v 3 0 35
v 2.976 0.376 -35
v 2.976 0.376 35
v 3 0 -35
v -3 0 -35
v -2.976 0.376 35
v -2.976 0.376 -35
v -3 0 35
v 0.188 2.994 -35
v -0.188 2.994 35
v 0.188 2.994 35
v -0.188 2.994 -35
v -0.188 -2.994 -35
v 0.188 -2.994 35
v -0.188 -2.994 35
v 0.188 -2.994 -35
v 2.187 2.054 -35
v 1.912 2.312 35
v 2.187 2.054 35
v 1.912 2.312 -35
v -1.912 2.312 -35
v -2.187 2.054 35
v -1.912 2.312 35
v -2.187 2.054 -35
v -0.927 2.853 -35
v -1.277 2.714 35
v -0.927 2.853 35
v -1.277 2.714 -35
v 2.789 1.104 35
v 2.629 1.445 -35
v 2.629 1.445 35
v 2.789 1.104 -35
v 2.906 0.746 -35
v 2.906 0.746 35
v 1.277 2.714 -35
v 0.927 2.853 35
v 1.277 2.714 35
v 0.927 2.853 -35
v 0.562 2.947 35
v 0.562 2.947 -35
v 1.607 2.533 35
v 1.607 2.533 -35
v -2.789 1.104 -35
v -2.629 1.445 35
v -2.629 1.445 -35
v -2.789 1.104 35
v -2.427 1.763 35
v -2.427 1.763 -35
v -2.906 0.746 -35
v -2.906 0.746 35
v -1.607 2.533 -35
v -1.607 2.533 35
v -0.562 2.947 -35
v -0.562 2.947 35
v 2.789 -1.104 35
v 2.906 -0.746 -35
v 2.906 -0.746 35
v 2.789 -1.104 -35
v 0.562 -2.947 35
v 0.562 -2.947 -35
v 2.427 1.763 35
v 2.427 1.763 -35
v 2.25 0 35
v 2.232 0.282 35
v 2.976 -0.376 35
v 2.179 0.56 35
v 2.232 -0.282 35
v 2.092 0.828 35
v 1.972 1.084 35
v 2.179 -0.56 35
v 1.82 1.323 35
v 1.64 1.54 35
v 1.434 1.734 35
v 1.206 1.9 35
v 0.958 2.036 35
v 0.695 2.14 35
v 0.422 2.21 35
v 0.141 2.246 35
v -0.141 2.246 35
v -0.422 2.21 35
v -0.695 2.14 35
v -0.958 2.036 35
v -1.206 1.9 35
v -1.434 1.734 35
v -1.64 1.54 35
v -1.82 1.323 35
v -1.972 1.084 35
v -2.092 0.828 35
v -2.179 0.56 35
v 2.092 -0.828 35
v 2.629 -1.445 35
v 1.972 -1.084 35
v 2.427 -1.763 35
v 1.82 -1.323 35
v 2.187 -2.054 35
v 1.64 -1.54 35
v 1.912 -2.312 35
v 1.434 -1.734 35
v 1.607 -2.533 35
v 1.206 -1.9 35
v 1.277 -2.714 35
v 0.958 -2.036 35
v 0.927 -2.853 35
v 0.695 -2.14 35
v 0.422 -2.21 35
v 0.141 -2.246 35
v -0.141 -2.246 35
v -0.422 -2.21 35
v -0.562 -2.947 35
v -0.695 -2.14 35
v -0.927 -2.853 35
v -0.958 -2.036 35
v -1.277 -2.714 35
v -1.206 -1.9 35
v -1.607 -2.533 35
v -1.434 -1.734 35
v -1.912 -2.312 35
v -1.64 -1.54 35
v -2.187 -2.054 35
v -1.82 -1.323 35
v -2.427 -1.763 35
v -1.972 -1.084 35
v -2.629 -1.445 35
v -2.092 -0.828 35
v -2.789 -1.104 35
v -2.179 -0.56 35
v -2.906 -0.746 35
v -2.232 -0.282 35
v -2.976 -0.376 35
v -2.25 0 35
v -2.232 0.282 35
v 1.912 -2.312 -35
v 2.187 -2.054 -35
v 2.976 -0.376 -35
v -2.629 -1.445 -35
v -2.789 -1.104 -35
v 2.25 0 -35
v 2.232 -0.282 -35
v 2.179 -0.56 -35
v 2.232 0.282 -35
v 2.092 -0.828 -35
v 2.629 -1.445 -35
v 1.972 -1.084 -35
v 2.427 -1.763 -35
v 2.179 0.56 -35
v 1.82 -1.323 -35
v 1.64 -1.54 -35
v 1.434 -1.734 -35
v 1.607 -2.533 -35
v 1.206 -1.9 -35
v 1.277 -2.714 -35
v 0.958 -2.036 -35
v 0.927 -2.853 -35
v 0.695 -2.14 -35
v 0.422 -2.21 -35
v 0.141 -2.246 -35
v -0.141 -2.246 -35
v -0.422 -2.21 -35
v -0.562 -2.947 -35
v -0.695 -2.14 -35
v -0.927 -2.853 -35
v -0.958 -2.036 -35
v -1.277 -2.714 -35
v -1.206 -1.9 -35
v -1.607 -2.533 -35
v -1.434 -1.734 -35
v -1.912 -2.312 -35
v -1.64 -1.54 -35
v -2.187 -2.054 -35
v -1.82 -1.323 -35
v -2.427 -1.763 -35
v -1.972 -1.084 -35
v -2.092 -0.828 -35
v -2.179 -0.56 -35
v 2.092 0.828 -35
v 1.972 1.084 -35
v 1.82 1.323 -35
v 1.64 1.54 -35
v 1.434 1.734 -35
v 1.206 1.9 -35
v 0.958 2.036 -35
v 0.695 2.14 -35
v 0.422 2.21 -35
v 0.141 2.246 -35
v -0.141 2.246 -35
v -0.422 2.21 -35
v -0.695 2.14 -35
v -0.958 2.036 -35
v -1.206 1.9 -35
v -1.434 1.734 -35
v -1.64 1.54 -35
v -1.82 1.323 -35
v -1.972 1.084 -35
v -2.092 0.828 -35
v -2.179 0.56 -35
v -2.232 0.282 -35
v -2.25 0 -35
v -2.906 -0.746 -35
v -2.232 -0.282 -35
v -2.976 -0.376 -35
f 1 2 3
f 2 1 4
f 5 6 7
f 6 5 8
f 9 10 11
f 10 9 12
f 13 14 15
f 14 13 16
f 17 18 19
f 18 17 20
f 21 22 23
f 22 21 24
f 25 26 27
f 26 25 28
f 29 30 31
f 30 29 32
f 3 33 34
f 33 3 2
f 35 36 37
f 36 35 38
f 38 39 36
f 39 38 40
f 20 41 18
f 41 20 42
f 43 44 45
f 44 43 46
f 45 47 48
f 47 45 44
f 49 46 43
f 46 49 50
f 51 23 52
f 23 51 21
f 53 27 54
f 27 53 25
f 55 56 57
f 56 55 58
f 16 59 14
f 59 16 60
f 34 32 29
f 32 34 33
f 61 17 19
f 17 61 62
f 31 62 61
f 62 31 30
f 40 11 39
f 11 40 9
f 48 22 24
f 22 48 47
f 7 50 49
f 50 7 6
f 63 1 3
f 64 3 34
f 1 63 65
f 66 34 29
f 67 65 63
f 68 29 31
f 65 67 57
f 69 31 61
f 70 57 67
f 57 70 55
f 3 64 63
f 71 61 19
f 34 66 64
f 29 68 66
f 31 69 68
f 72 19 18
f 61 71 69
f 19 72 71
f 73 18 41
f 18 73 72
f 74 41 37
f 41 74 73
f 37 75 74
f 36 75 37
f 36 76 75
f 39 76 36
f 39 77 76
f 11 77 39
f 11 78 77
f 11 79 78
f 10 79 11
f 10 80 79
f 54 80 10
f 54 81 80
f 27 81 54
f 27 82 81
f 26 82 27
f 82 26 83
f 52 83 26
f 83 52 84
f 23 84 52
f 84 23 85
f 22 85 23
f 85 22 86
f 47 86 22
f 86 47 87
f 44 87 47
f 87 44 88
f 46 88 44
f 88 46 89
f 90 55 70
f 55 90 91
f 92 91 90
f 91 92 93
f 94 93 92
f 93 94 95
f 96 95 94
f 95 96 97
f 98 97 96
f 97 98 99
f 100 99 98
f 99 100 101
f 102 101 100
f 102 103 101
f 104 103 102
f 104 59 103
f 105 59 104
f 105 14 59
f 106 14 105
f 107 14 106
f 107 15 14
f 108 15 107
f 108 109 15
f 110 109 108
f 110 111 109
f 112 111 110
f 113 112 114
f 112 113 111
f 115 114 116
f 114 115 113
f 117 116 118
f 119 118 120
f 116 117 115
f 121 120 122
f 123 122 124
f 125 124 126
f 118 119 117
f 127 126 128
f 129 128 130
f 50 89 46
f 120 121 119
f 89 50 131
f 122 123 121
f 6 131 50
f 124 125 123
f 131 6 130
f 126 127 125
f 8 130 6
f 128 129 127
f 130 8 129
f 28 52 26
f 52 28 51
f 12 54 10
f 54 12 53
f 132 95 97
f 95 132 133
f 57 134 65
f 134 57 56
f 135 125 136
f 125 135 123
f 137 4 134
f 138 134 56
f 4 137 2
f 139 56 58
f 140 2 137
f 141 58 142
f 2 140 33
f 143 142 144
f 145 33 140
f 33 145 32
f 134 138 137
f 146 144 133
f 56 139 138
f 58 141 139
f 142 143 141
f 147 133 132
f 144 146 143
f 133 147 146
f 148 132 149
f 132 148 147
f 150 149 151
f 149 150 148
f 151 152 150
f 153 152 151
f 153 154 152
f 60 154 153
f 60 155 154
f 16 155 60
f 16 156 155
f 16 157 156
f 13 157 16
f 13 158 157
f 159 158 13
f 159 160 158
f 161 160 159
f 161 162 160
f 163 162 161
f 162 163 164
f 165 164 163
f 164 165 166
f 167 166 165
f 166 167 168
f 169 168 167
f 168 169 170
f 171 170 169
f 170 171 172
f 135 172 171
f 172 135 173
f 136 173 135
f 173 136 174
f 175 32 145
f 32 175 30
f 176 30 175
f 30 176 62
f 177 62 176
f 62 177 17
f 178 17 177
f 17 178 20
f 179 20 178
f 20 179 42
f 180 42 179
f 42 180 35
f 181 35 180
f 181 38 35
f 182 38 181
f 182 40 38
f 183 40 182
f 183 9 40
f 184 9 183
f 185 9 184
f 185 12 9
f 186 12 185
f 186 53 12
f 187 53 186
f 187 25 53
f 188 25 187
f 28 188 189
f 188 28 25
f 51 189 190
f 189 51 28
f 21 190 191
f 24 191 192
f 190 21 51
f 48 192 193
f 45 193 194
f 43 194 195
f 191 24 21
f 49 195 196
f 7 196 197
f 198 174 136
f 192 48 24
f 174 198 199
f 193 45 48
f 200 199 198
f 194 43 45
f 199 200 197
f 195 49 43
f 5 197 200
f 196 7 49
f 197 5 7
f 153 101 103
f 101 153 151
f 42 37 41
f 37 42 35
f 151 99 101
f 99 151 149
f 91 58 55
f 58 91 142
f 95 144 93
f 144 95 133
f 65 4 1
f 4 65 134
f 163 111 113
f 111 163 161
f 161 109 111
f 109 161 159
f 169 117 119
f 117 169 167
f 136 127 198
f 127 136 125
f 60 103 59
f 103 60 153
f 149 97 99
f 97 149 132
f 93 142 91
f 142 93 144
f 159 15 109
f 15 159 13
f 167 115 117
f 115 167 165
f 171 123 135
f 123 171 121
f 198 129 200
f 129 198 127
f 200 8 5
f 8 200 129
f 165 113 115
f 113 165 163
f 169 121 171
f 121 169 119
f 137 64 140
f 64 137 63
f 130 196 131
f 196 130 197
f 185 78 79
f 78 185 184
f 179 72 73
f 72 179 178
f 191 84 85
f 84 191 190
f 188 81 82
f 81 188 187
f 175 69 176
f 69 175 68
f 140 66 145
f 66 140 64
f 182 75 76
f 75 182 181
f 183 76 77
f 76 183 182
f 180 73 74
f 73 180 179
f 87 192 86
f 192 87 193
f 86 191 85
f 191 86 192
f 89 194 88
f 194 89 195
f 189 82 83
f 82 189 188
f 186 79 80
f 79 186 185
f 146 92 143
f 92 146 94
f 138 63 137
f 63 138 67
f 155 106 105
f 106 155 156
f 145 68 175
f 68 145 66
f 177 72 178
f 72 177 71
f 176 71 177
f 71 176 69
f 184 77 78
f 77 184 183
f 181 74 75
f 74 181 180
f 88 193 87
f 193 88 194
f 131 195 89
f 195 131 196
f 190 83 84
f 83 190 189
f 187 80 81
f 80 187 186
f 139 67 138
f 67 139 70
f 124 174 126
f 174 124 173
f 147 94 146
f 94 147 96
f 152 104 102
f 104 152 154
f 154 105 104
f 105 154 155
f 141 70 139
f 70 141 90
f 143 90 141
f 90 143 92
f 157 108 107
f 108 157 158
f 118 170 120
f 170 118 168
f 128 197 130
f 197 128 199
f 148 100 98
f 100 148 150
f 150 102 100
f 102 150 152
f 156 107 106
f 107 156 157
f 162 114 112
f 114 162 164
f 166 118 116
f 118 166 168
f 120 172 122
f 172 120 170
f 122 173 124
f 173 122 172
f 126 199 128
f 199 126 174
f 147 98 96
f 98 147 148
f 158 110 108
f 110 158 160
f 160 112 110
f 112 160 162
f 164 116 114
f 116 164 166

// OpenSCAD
$fn = 50;


difference() {
	union() {
		translate(v = [0, 0, -35.0000000000]) {
			cylinder(h = 70, r = 3.0000000000);
		}
	}
	union() {
		translate(v = [0, 0, -100.0000000000]) {
			cylinder(h = 200, r = 2.2500000000);
		}
	}
}
